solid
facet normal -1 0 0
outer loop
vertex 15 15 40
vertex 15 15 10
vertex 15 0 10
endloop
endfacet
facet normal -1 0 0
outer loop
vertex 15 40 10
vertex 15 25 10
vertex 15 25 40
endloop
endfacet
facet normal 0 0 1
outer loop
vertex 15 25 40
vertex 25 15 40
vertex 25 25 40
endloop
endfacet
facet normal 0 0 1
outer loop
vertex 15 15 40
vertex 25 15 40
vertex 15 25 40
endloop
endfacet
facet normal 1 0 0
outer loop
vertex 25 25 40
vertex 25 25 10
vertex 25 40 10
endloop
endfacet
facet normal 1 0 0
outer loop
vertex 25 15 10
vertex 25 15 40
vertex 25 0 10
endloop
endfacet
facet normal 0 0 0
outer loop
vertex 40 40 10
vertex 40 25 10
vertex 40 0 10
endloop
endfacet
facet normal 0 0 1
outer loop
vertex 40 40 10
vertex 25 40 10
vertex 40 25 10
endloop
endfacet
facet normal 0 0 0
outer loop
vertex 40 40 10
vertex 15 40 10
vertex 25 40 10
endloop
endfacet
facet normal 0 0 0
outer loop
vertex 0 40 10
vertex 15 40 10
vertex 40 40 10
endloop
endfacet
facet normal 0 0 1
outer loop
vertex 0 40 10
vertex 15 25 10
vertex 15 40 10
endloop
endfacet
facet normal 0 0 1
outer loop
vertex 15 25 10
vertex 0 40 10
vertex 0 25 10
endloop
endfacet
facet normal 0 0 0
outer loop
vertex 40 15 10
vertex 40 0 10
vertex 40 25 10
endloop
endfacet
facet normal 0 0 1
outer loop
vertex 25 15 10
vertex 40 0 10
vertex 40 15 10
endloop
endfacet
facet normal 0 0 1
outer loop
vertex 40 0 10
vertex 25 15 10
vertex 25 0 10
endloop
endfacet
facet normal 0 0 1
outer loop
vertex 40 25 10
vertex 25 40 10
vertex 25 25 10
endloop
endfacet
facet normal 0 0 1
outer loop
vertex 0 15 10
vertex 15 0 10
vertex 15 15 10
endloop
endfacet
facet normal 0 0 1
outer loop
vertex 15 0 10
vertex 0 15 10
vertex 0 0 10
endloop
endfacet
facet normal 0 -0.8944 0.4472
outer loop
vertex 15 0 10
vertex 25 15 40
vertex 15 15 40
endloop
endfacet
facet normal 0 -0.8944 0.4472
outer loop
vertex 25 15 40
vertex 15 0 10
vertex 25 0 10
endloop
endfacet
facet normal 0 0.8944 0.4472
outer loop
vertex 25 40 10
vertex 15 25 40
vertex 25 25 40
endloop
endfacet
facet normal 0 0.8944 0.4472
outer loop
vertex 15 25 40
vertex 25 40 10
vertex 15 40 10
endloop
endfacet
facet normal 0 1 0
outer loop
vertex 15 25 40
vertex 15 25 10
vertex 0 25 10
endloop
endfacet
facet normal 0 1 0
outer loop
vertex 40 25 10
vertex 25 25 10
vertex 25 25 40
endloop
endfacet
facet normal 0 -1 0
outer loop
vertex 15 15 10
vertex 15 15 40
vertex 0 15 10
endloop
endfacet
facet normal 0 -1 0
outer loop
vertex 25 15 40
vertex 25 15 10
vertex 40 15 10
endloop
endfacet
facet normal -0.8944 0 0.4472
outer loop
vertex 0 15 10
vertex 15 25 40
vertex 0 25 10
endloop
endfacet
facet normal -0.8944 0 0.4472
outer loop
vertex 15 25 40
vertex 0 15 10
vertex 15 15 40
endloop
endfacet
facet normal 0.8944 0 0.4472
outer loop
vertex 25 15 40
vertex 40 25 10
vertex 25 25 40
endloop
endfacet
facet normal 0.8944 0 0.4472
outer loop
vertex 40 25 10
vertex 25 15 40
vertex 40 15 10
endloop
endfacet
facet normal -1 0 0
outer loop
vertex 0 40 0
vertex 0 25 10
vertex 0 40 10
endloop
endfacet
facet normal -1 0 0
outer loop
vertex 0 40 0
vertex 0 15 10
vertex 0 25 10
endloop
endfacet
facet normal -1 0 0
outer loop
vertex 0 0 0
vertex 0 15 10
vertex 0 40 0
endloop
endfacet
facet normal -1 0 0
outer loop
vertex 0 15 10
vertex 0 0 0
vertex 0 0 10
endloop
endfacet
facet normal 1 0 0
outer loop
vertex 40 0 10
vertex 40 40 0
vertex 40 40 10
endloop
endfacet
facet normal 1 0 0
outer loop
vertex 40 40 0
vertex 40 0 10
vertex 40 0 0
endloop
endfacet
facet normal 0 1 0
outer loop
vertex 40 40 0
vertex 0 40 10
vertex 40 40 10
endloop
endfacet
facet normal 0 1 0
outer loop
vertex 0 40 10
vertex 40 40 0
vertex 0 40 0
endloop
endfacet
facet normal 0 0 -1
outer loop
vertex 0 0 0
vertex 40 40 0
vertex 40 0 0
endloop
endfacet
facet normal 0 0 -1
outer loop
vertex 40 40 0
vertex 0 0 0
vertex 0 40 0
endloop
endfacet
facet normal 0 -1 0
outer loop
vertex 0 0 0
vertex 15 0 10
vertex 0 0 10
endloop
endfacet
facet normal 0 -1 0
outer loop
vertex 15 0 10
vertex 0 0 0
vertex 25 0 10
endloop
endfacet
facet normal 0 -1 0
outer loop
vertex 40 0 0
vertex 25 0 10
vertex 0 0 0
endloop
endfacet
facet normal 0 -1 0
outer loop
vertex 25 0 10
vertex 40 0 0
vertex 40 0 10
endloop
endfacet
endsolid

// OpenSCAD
cube ([40,40,10]);
difference(){
translate([15,0,10])
cube ([10,40,30]);
translate([15,0,10])
rotate([63.435,0,0])	 
cube ([10,40,30]);
translate([15,25,40])
rotate([-63.435,0,0])	 
cube ([10,40,30]);
}
difference(){
translate([0,15,10])
cube ([40,10,30]);
translate([0,15,10])
rotate([0,-63.435,0])	 
cube ([40,10,30]);
translate([25,15,40])
rotate([0,63.435,0])	 
cube ([40,10,30]);
}
